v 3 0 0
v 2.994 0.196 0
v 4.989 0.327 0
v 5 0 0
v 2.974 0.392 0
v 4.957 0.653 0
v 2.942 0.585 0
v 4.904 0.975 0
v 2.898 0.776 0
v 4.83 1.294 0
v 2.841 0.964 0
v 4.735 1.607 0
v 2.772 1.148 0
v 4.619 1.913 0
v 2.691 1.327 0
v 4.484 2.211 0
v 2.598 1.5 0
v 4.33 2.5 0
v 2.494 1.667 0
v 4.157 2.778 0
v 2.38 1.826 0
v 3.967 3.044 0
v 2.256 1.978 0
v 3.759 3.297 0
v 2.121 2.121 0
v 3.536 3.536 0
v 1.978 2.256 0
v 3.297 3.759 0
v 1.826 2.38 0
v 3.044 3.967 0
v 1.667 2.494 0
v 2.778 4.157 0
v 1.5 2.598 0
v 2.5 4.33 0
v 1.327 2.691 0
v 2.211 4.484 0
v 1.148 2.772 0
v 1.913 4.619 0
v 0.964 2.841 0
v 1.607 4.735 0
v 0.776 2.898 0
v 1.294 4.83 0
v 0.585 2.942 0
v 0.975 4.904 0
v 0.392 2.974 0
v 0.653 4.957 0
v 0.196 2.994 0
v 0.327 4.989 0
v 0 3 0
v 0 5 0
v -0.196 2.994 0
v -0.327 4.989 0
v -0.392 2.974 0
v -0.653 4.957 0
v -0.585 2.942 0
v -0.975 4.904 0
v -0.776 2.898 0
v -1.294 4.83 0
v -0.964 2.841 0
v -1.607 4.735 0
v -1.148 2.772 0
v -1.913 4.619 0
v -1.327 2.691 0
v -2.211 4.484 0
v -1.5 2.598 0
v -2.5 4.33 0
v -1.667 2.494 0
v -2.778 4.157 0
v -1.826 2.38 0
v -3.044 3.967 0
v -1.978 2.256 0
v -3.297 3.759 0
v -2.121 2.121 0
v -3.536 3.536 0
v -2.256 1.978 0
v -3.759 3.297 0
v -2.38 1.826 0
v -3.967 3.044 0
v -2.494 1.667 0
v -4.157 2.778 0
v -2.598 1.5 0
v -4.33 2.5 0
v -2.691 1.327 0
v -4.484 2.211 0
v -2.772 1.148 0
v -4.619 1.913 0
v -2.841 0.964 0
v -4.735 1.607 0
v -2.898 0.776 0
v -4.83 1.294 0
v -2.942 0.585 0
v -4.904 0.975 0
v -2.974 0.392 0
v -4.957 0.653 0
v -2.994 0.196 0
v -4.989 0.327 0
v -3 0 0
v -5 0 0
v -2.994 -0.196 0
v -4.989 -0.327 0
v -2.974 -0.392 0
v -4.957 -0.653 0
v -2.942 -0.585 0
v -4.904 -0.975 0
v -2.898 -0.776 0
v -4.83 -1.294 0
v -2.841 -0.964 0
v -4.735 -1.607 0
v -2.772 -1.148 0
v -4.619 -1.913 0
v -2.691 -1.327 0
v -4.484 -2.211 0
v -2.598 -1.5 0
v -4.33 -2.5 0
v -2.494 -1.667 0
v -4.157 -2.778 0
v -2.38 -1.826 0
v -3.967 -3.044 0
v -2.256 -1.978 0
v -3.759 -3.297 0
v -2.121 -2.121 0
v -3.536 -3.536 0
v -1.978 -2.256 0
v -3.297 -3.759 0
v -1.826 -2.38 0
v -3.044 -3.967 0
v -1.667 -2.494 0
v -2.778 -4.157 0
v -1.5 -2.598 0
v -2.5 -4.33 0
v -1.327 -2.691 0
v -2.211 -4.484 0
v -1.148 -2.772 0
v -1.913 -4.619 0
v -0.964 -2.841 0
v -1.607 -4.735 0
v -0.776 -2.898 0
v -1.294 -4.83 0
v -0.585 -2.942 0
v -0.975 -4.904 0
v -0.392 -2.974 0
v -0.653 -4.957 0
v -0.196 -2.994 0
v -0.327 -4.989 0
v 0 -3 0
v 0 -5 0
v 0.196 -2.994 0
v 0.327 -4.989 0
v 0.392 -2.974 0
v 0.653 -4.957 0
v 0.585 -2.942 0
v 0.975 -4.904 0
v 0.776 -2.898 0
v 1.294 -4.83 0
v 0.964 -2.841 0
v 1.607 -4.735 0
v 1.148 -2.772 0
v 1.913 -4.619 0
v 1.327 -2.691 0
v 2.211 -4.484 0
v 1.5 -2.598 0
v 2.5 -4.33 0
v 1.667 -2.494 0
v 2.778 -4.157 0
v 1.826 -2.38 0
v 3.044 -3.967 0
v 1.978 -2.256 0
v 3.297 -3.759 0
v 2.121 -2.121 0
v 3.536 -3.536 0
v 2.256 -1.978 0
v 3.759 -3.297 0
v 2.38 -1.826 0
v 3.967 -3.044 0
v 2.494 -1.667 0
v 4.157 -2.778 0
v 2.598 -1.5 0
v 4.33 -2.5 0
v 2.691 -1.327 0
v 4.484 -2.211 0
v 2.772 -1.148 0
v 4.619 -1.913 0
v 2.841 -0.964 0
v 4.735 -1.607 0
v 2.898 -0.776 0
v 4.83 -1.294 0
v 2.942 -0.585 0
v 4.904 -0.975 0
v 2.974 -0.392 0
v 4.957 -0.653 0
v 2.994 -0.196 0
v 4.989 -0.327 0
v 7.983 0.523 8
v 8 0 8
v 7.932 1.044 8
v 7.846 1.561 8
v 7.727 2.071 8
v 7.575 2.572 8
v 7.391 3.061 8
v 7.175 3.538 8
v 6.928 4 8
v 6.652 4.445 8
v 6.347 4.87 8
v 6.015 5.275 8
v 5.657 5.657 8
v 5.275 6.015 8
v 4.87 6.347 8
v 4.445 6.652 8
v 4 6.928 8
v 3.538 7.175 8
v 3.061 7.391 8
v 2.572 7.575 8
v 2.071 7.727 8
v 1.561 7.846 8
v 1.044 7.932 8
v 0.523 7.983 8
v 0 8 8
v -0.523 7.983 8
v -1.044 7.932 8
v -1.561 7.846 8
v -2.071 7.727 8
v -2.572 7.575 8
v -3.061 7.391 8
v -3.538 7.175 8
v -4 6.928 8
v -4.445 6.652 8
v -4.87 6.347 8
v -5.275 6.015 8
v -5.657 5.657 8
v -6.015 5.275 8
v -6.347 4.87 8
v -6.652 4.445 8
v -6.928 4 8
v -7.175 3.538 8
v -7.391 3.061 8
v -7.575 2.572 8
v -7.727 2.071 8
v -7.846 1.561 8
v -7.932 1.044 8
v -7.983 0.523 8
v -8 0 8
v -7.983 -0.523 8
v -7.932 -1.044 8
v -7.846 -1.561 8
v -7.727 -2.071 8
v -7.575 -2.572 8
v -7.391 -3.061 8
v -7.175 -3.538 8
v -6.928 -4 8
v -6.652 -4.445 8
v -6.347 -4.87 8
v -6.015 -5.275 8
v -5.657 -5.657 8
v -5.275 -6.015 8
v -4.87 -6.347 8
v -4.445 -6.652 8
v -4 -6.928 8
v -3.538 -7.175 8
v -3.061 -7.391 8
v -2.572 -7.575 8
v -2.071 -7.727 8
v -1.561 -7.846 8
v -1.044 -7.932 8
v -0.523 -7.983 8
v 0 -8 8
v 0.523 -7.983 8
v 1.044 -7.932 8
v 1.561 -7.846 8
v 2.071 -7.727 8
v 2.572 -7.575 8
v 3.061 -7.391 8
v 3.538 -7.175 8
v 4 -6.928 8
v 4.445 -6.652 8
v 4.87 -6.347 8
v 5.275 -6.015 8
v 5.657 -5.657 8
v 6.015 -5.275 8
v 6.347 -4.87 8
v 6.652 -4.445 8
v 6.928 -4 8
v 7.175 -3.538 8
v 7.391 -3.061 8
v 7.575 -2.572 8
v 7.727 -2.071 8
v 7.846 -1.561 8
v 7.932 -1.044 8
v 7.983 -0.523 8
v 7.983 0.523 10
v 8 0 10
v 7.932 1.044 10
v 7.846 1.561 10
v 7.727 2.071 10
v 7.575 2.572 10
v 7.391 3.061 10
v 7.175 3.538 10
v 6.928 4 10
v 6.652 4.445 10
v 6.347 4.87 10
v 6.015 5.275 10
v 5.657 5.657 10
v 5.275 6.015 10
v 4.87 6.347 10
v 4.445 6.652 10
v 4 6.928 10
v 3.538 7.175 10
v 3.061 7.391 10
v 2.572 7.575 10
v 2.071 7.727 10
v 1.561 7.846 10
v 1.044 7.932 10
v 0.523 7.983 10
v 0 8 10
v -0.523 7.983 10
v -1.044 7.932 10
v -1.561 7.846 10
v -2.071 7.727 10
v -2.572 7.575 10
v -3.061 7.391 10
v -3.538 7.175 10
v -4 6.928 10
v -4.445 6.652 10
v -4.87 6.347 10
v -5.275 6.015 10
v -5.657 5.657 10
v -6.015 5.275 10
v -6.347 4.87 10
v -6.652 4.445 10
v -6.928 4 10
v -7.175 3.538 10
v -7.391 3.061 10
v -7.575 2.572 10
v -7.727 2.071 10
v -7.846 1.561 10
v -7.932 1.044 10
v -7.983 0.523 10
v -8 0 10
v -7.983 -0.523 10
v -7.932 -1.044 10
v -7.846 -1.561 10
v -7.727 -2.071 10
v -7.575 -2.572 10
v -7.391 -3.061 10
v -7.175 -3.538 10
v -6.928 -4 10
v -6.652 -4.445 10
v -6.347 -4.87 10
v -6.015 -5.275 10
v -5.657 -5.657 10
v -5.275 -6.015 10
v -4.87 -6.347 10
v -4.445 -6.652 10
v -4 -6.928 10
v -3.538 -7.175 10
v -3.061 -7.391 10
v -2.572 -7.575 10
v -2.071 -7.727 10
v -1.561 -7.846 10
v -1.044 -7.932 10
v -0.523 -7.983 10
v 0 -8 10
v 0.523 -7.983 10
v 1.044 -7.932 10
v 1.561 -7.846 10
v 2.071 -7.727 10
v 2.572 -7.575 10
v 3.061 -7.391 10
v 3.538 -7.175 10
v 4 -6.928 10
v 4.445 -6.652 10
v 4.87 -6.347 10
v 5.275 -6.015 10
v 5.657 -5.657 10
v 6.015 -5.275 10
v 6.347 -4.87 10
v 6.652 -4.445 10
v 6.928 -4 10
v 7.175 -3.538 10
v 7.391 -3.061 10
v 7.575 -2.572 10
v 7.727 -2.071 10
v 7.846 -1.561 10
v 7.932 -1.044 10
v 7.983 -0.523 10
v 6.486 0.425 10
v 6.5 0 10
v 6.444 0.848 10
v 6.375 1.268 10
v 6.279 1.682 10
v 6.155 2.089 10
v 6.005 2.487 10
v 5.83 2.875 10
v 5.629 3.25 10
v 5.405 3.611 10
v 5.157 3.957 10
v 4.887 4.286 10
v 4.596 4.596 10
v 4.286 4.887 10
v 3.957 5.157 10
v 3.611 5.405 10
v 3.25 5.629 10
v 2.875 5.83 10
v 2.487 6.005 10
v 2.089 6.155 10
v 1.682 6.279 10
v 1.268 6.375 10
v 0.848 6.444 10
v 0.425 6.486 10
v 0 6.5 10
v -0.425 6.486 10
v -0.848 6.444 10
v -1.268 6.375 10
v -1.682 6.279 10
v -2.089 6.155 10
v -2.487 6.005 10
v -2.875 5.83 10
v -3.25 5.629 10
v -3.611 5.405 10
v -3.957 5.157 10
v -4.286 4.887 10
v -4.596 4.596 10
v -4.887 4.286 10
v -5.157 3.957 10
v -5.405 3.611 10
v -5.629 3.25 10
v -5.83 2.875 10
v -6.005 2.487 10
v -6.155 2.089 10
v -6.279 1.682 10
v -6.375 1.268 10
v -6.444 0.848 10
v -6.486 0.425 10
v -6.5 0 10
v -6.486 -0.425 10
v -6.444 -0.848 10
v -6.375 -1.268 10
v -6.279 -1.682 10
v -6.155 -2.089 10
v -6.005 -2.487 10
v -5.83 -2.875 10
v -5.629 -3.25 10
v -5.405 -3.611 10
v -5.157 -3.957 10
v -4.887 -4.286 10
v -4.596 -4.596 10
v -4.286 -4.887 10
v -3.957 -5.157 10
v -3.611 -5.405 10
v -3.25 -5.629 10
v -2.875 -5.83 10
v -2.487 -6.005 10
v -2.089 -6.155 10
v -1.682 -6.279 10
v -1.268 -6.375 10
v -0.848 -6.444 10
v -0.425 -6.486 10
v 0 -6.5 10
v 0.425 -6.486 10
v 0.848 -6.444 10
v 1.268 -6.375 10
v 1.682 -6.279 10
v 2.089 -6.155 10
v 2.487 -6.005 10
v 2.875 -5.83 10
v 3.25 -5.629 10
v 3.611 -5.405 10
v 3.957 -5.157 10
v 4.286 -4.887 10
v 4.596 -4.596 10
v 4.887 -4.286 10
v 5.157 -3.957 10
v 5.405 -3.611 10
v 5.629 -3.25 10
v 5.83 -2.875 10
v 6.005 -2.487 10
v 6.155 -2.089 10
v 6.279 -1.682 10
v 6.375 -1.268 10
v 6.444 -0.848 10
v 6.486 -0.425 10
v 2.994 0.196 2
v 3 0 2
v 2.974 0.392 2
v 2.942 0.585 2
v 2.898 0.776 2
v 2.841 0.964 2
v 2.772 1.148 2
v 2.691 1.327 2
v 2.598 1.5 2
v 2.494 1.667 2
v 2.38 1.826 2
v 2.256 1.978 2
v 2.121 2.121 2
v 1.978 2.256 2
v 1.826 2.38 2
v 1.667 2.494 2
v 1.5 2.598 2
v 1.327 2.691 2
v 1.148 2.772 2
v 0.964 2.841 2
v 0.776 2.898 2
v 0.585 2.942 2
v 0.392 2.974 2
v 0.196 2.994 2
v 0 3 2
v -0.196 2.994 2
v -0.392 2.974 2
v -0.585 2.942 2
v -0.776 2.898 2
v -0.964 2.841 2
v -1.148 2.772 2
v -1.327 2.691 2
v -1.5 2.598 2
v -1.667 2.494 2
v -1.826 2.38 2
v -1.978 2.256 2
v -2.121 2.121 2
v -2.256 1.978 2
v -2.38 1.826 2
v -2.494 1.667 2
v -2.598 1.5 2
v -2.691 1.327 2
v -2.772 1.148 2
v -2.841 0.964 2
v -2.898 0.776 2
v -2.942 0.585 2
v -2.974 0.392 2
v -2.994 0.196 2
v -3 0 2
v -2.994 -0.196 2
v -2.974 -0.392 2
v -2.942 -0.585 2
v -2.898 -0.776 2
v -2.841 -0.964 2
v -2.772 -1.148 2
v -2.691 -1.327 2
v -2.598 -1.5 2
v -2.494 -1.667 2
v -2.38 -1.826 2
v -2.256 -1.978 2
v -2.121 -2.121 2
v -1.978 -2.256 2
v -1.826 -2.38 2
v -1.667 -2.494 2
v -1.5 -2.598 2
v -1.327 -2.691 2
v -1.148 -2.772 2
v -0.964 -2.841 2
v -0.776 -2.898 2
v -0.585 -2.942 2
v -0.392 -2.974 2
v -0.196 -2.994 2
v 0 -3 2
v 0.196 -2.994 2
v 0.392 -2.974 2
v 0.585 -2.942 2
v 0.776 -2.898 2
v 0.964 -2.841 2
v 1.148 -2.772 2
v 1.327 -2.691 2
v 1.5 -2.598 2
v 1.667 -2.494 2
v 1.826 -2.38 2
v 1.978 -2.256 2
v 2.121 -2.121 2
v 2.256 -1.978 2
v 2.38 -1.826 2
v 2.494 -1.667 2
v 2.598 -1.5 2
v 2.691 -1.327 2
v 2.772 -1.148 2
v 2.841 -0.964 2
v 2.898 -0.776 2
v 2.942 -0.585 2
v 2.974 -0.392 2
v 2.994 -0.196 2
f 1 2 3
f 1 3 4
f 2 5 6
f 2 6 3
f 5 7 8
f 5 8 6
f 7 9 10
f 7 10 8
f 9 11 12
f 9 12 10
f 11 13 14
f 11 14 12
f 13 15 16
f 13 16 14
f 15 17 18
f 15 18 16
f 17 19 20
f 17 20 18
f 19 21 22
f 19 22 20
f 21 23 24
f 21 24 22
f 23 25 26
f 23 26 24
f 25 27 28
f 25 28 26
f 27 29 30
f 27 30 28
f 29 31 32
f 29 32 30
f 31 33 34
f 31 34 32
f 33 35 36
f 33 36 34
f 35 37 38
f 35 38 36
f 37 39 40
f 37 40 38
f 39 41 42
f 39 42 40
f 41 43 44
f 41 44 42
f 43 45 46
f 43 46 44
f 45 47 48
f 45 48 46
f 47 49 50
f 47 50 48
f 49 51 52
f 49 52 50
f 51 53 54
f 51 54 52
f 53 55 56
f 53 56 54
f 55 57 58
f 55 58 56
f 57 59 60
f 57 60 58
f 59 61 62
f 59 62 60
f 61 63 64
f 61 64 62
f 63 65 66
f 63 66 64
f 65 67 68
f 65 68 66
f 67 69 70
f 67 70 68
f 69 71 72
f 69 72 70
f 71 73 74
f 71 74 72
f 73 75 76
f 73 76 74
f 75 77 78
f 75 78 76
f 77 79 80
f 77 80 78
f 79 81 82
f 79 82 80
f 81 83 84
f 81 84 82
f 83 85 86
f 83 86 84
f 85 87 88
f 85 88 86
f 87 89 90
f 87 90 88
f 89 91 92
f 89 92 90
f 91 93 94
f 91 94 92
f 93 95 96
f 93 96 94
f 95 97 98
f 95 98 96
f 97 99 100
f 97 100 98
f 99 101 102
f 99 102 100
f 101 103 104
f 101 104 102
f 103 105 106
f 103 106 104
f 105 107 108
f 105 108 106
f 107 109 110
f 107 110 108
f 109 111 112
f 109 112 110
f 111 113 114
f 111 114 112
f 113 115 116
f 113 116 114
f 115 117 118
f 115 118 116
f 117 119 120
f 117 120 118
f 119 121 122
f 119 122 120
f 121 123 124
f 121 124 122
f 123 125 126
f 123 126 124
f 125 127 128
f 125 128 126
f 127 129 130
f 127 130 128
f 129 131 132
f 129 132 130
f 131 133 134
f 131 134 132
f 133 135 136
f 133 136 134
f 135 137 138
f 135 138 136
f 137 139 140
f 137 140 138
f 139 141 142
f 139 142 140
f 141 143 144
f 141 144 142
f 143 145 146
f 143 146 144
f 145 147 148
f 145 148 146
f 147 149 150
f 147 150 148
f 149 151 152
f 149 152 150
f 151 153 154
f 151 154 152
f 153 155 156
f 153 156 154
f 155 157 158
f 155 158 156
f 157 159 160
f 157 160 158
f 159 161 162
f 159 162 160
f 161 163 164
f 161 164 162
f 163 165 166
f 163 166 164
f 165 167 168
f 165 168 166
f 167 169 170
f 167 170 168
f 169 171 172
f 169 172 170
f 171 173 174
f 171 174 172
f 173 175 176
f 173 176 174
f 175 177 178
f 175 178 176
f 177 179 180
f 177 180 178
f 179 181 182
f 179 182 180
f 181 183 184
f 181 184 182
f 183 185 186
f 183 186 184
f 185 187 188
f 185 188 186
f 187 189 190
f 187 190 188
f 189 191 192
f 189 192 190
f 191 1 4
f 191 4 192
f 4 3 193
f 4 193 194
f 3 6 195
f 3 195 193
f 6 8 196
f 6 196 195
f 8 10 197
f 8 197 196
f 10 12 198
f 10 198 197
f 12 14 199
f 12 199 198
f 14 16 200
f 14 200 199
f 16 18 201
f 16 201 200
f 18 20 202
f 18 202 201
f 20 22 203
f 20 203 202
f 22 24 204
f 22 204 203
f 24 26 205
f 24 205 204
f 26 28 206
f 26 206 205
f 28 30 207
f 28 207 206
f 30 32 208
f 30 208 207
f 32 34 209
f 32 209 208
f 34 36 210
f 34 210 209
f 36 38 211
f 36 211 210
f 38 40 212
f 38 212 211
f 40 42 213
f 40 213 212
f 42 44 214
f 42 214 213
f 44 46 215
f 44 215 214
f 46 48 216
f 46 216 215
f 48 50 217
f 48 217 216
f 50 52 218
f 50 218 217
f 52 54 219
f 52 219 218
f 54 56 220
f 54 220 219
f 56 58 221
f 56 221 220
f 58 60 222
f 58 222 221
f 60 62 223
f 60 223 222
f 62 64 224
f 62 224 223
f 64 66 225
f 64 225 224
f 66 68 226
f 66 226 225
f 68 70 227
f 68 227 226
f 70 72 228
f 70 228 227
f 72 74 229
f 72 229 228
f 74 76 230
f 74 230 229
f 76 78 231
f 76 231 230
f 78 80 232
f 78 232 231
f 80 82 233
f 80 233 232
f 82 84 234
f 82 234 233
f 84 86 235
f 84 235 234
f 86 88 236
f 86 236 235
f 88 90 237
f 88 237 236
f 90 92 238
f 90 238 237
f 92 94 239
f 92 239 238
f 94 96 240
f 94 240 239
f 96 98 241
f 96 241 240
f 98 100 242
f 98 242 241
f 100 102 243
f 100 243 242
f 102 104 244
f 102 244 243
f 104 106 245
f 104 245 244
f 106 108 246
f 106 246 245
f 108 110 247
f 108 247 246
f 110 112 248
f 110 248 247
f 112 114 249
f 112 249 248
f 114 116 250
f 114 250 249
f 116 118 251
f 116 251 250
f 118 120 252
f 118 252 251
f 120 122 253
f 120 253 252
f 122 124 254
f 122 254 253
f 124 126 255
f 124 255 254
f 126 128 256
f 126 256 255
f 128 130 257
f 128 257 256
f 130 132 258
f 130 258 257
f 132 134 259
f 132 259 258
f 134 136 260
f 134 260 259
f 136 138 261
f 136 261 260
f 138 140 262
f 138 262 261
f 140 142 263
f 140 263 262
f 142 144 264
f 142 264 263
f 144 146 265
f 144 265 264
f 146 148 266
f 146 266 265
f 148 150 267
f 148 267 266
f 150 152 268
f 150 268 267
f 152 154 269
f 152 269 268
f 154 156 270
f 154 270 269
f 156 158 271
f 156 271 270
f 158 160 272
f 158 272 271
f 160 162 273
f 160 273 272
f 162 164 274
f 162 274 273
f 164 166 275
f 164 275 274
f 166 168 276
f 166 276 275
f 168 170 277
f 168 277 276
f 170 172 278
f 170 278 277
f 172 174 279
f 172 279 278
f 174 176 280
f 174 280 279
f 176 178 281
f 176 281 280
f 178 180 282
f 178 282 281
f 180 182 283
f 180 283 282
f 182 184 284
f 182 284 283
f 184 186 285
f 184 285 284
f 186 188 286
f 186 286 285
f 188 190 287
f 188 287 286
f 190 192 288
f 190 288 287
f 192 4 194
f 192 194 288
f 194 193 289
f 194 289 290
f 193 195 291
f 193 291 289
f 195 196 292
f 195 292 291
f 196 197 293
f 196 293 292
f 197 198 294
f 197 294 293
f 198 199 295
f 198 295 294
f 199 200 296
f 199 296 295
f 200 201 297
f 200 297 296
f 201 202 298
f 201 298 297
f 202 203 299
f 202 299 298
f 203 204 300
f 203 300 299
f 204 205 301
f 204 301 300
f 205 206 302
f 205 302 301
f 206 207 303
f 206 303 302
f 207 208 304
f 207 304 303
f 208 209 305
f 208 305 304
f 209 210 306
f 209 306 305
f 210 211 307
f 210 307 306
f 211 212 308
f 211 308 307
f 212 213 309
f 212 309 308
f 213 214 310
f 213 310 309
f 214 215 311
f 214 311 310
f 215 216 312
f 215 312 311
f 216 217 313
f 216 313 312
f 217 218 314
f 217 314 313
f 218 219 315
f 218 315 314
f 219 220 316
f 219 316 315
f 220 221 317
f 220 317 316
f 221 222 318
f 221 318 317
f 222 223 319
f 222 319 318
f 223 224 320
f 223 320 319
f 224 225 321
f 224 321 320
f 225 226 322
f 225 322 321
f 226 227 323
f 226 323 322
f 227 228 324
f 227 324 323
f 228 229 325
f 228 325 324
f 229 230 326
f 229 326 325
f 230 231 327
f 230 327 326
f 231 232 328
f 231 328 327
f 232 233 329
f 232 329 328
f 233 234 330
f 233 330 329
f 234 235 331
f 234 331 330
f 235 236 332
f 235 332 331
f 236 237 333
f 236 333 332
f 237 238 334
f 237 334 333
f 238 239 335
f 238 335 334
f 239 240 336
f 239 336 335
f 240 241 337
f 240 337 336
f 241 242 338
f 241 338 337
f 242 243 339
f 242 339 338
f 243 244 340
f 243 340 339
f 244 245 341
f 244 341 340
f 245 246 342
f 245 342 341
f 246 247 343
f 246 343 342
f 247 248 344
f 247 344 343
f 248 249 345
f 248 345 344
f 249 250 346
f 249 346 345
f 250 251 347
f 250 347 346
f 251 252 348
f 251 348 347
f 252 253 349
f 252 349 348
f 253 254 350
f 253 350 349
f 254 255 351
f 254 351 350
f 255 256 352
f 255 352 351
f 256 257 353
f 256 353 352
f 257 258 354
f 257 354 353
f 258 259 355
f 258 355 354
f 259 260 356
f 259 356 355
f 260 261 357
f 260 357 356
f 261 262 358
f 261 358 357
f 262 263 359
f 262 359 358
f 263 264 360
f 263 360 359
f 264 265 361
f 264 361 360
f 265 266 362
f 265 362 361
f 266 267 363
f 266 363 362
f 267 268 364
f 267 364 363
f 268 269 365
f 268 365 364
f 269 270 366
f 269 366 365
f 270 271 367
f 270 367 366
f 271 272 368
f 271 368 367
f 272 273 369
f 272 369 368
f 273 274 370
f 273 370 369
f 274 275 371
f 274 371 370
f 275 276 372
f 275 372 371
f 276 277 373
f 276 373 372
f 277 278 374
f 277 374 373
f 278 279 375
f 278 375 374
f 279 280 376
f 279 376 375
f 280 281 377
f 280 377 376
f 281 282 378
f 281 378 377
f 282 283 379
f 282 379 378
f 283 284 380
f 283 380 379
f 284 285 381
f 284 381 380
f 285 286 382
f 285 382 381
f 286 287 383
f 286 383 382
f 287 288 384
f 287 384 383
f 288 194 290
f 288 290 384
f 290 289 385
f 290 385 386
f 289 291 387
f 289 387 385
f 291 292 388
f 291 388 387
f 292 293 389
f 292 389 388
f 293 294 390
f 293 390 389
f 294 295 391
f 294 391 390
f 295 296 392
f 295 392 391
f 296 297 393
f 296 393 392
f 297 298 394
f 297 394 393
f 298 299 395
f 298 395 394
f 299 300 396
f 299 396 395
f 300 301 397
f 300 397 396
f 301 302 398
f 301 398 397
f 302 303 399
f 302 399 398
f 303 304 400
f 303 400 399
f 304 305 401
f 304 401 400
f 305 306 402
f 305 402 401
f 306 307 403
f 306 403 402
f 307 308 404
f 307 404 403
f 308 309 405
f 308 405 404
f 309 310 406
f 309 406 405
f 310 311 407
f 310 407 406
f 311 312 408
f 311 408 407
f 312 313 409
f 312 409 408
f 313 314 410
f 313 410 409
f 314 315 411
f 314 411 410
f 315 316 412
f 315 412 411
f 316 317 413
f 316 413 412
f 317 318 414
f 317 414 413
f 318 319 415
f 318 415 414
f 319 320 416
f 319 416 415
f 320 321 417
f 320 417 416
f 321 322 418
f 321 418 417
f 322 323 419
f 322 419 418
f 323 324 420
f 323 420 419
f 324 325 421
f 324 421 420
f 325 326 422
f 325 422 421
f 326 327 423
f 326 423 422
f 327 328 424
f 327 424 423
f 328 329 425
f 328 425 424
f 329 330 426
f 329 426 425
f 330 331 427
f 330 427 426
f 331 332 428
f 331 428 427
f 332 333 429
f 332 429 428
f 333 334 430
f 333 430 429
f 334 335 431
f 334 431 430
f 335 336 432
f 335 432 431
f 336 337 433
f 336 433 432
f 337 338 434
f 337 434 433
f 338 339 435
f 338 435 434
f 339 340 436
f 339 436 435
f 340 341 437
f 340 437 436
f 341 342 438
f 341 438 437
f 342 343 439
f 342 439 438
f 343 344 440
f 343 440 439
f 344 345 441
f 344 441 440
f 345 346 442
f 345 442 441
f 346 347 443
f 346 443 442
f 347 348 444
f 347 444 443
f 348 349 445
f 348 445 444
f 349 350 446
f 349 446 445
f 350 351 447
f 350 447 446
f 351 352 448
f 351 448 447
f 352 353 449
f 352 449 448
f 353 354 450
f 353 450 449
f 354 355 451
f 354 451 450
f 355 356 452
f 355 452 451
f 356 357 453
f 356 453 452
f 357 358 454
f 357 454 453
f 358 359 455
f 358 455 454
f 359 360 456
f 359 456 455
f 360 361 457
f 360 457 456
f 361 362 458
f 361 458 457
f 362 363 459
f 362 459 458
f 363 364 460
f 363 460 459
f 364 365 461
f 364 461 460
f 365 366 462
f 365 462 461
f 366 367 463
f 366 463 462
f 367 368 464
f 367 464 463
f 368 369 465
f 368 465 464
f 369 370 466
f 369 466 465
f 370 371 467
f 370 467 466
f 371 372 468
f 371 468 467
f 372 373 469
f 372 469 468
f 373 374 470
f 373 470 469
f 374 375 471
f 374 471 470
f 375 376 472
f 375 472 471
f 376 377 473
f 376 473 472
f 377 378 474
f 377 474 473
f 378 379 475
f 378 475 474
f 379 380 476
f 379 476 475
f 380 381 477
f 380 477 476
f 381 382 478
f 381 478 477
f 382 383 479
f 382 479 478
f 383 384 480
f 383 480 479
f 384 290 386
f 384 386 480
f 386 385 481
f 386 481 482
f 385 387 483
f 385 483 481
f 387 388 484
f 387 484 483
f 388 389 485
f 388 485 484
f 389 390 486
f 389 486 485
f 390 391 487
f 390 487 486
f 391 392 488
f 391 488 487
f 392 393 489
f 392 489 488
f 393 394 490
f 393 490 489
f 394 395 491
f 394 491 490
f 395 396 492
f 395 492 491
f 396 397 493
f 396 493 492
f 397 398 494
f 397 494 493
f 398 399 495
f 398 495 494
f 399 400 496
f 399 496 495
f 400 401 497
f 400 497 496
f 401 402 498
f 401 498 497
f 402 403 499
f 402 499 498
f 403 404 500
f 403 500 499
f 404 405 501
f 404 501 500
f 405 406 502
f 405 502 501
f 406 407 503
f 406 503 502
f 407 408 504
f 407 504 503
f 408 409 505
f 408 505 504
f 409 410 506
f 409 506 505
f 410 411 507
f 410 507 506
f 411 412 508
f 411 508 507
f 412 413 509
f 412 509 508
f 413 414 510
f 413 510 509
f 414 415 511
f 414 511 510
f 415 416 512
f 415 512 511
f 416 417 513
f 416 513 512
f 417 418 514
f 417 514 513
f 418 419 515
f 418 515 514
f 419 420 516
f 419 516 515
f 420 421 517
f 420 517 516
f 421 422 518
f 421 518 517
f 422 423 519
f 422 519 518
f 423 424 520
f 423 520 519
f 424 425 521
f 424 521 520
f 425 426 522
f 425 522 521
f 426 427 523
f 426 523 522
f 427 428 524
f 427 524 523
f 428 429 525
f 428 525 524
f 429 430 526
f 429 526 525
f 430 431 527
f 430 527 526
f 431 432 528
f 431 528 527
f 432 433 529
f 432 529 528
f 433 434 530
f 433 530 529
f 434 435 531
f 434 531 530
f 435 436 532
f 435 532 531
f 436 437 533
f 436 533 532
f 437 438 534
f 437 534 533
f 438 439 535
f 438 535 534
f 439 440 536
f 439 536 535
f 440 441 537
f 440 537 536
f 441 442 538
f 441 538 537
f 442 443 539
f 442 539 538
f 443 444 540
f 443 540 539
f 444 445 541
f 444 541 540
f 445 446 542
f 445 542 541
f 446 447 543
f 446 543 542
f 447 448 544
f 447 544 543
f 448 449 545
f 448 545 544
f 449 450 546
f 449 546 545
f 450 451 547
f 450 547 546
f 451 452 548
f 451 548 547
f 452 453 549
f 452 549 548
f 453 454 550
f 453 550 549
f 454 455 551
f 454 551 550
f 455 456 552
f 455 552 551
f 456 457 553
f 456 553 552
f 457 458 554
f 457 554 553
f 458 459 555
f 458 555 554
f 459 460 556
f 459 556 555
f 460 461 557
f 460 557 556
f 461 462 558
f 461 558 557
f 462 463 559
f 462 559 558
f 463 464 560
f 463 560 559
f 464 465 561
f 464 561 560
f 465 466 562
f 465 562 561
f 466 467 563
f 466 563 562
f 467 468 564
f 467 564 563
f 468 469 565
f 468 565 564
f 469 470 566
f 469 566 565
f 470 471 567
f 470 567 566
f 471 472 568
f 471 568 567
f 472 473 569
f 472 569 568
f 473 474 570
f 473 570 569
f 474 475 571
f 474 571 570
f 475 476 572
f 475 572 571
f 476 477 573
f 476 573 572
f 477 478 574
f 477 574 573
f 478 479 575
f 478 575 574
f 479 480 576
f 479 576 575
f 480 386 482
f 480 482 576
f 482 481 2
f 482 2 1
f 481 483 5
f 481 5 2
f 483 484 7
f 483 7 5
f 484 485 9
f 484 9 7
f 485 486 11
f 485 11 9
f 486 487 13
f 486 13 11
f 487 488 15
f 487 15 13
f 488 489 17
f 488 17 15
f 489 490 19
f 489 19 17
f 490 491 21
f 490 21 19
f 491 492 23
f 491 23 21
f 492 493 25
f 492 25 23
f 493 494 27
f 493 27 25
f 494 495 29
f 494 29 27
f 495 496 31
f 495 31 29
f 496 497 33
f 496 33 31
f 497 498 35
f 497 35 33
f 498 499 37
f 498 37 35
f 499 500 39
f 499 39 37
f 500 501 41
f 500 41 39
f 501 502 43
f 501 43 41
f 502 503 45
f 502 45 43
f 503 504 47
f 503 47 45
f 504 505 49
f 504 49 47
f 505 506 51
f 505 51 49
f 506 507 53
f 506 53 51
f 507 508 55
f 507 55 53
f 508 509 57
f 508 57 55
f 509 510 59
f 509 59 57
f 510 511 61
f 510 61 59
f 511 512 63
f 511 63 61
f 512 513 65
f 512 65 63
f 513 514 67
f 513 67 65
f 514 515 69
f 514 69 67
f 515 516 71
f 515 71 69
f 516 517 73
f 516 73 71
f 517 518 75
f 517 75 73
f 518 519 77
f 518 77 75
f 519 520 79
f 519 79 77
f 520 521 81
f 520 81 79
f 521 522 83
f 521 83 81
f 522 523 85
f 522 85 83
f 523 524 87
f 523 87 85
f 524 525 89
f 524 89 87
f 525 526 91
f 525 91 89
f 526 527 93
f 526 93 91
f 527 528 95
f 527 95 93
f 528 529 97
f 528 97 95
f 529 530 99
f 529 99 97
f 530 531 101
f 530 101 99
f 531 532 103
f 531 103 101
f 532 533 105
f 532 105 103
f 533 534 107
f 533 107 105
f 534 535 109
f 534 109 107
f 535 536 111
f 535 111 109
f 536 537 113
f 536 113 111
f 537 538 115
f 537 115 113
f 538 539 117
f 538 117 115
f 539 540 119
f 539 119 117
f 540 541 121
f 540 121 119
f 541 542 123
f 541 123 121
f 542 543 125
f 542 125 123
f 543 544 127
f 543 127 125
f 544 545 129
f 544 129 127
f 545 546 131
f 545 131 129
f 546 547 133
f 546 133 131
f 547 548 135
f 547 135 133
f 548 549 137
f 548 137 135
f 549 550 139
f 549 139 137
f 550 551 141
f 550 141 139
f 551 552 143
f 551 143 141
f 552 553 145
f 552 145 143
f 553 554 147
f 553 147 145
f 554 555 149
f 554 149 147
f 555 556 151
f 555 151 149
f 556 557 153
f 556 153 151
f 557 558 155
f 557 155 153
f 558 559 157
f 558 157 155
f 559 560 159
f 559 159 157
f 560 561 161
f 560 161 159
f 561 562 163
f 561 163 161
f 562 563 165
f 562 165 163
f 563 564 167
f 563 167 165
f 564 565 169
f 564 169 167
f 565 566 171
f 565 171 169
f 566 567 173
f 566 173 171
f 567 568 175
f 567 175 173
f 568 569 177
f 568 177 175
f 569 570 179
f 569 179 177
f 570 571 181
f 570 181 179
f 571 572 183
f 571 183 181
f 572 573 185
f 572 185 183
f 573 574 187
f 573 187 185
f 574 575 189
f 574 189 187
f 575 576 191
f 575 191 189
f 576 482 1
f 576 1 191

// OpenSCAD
// Original MechIntel educational model. CC0-1.0. Units: mm.
// Not a standardized or load-rated component.
$fn=96;
// Section points: [radius, height], mm. Edit to change the profile.
section=[[3, 0], [5, 0], [8, 8], [8, 10], [6.5, 10], [3, 2]];
rotate_extrude($fn=96) polygon(points=section);
